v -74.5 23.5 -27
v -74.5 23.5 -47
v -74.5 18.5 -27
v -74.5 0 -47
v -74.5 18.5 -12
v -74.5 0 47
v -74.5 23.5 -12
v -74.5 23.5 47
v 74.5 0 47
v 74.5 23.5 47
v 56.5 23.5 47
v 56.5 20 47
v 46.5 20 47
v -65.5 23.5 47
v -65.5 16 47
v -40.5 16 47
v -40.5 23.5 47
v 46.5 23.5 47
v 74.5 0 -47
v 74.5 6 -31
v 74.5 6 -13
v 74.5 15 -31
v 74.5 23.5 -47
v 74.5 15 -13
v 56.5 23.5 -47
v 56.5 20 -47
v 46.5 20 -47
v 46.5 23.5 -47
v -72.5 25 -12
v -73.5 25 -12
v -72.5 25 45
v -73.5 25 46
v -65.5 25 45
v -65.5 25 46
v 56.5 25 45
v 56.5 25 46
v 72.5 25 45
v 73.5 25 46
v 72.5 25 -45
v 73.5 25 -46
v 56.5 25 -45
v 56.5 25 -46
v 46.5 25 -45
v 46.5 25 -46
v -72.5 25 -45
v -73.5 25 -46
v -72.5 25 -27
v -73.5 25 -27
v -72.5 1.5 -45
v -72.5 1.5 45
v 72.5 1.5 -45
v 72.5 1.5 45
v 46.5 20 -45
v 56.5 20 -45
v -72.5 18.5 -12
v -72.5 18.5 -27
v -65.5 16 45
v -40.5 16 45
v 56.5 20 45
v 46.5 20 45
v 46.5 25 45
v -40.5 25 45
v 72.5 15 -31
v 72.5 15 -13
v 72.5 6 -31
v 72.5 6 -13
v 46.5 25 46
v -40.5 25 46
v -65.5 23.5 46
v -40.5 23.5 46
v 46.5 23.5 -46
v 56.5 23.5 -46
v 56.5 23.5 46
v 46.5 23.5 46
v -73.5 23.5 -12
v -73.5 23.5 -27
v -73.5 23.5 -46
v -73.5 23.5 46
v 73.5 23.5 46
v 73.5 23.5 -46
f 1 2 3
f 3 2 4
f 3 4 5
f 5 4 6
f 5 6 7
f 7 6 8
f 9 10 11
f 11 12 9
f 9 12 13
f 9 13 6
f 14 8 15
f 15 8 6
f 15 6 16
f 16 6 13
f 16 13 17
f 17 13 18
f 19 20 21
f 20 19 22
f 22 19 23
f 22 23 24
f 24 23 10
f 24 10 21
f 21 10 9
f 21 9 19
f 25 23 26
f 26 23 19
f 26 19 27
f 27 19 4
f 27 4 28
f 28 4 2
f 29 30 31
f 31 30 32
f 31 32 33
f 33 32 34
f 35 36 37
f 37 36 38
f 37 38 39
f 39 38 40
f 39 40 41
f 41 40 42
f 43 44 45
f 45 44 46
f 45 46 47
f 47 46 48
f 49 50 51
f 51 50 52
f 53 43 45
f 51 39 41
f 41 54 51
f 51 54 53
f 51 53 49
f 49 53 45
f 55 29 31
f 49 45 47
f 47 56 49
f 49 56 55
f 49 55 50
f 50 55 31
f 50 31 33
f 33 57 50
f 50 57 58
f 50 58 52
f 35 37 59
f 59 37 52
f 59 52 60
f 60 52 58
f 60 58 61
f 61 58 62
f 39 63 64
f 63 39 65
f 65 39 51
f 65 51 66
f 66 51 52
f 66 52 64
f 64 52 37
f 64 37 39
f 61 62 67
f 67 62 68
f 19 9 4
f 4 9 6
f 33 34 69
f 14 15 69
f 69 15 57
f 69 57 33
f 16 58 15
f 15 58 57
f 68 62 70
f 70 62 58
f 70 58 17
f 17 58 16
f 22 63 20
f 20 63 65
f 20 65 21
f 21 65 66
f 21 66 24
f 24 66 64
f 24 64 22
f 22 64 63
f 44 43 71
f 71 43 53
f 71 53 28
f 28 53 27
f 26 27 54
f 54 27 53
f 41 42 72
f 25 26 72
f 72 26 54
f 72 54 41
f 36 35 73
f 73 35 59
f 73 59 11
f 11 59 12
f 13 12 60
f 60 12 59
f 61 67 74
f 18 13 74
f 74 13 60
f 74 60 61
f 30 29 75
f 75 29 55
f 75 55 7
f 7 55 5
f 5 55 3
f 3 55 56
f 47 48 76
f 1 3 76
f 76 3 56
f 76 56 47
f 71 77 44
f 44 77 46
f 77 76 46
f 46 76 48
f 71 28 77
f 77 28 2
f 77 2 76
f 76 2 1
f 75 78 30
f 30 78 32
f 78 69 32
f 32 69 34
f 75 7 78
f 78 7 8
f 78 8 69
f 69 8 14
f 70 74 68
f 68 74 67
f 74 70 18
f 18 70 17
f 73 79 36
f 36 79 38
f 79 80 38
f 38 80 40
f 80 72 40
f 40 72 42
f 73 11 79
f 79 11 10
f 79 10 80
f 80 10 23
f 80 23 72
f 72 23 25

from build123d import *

# Parameters (mm, degrees)
SKETCH2_W           = 145
SKETCH2_H           = 90
BOSS_EXTRUDE1_DEPTH = 1.5
SKETCH3_W           = 149
SKETCH3_H           = 94
SKETCH3_W_2         = 145
SKETCH3_H_2         = 90
BOSS_EXTRUDE2_DEPTH = 25
CUT_EXTRUDE1_REACH  = 124.52
SKETCH4_W           = 25
SKETCH4_H           = 15
CUT_EXTRUDE2_REACH  = 160.225
SKETCH5_W           = 18
SKETCH5_H           = 9
SKETCH6_W           = 10
SKETCH6_H           = 5
CUT_EXTRUDE3_DEPTH  = 123.520406464
CUT_EXTRUDE4_REACH  = 160.225
SKETCH7_W           = 15
SKETCH7_H           = 6.5
SKETCH9_W           = 87
SKETCH9_H           = 1
CUT_EXTRUDE5_DEPTH  = 1.5


with BuildPart() as part:
    # Sketch2 → Boss-Extrude1 (new body)
    with BuildSketch(Plane(origin=(0, 0, 0), x_dir=(1, 0, 0), z_dir=(0, 1, 0))):
        Rectangle(SKETCH2_W, SKETCH2_H)
    extrude(amount=BOSS_EXTRUDE1_DEPTH)

    # Sketch3 → Boss-Extrude2 (add)
    with BuildSketch(Plane(origin=(0, 0, 0), x_dir=(1, 0, 0), z_dir=(0, 1, 0))):
        Rectangle(SKETCH3_W, SKETCH3_H)
        Rectangle(SKETCH3_W_2, SKETCH3_H_2, mode=Mode.SUBTRACT)
    extrude(amount=BOSS_EXTRUDE2_DEPTH)

    # Sketch4 → Cut-Extrude1 (cut, up to next)
    with BuildSketch(Plane.XY.offset(47), mode=Mode.PRIVATE) as cut_extrude1_sk1:
        with Locations((-53, 23.5)):
            Rectangle(SKETCH4_W, SKETCH4_H)
    cut_extrude1_tool1 = extrude(cut_extrude1_sk1.sketch, amount=-CUT_EXTRUDE1_REACH, mode=Mode.PRIVATE) & part.part
    add(cut_extrude1_tool1.solids().sort_by_distance((-53, 23.5, 47))[0], mode=Mode.SUBTRACT)

    # Sketch5 → Cut-Extrude2 (cut, up to next)
    with BuildSketch(Plane(origin=(74.5, 0, 0), x_dir=(0, 0, -1), z_dir=(1, 0, 0)), mode=Mode.PRIVATE) as cut_extrude2_sk1:
        with Locations((22, 10.5)):
            Rectangle(SKETCH5_W, SKETCH5_H)
    cut_extrude2_tool1 = extrude(cut_extrude2_sk1.sketch, amount=-CUT_EXTRUDE2_REACH, mode=Mode.PRIVATE) & part.part
    add(cut_extrude2_tool1.solids().sort_by_distance((74.5, 10.5, -22))[0], mode=Mode.SUBTRACT)

    # Sketch6 → Cut-Extrude3 (cut, through all)
    with BuildSketch(Plane.XY.offset(47)):
        with Locations((51.5, 22.5)):
            Rectangle(SKETCH6_W, SKETCH6_H)
    extrude(amount=-CUT_EXTRUDE3_DEPTH, mode=Mode.SUBTRACT)

    # Sketch7 → Cut-Extrude4 (cut, up to next)
    with BuildSketch(Plane.ZY.offset(74.5), mode=Mode.PRIVATE) as cut_extrude4_sk1:
        with Locations((-19.5, 21.75)):
            Rectangle(SKETCH7_W, SKETCH7_H)
    cut_extrude4_tool1 = extrude(cut_extrude4_sk1.sketch, amount=-CUT_EXTRUDE4_REACH, mode=Mode.PRIVATE) & part.part
    add(cut_extrude4_tool1.solids().sort_by_distance((-74.5, 21.75, -19.5))[0], mode=Mode.SUBTRACT)

    # Sketch9 → Cut-Extrude5 (cut)
    with BuildSketch(Plane(origin=(0, 25, 0), x_dir=(1, 0, 0), z_dir=(0, 1, 0))):
        Polygon((-73.5, 12), (-74.5, 12), (-74.5, -47), (-65.5, -47), (-65.5, -46), (-73.5, -46), align=None)
        Polygon((-74.5, 27), (-73.5, 27), (-73.5, 46), (46.5, 46), (46.5, 47), (-74.5, 47), align=None)
        Polygon((56.5, -46), (56.5, -47), (74.5, -47), (74.5, 47), (56.5, 47), (56.5, 46), (73.5, 46), (73.5, -46), align=None)
        with Locations((3, -46.5)):
            Rectangle(SKETCH9_W, SKETCH9_H)
    extrude(amount=-CUT_EXTRUDE5_DEPTH, mode=Mode.SUBTRACT)


solid = part.part
